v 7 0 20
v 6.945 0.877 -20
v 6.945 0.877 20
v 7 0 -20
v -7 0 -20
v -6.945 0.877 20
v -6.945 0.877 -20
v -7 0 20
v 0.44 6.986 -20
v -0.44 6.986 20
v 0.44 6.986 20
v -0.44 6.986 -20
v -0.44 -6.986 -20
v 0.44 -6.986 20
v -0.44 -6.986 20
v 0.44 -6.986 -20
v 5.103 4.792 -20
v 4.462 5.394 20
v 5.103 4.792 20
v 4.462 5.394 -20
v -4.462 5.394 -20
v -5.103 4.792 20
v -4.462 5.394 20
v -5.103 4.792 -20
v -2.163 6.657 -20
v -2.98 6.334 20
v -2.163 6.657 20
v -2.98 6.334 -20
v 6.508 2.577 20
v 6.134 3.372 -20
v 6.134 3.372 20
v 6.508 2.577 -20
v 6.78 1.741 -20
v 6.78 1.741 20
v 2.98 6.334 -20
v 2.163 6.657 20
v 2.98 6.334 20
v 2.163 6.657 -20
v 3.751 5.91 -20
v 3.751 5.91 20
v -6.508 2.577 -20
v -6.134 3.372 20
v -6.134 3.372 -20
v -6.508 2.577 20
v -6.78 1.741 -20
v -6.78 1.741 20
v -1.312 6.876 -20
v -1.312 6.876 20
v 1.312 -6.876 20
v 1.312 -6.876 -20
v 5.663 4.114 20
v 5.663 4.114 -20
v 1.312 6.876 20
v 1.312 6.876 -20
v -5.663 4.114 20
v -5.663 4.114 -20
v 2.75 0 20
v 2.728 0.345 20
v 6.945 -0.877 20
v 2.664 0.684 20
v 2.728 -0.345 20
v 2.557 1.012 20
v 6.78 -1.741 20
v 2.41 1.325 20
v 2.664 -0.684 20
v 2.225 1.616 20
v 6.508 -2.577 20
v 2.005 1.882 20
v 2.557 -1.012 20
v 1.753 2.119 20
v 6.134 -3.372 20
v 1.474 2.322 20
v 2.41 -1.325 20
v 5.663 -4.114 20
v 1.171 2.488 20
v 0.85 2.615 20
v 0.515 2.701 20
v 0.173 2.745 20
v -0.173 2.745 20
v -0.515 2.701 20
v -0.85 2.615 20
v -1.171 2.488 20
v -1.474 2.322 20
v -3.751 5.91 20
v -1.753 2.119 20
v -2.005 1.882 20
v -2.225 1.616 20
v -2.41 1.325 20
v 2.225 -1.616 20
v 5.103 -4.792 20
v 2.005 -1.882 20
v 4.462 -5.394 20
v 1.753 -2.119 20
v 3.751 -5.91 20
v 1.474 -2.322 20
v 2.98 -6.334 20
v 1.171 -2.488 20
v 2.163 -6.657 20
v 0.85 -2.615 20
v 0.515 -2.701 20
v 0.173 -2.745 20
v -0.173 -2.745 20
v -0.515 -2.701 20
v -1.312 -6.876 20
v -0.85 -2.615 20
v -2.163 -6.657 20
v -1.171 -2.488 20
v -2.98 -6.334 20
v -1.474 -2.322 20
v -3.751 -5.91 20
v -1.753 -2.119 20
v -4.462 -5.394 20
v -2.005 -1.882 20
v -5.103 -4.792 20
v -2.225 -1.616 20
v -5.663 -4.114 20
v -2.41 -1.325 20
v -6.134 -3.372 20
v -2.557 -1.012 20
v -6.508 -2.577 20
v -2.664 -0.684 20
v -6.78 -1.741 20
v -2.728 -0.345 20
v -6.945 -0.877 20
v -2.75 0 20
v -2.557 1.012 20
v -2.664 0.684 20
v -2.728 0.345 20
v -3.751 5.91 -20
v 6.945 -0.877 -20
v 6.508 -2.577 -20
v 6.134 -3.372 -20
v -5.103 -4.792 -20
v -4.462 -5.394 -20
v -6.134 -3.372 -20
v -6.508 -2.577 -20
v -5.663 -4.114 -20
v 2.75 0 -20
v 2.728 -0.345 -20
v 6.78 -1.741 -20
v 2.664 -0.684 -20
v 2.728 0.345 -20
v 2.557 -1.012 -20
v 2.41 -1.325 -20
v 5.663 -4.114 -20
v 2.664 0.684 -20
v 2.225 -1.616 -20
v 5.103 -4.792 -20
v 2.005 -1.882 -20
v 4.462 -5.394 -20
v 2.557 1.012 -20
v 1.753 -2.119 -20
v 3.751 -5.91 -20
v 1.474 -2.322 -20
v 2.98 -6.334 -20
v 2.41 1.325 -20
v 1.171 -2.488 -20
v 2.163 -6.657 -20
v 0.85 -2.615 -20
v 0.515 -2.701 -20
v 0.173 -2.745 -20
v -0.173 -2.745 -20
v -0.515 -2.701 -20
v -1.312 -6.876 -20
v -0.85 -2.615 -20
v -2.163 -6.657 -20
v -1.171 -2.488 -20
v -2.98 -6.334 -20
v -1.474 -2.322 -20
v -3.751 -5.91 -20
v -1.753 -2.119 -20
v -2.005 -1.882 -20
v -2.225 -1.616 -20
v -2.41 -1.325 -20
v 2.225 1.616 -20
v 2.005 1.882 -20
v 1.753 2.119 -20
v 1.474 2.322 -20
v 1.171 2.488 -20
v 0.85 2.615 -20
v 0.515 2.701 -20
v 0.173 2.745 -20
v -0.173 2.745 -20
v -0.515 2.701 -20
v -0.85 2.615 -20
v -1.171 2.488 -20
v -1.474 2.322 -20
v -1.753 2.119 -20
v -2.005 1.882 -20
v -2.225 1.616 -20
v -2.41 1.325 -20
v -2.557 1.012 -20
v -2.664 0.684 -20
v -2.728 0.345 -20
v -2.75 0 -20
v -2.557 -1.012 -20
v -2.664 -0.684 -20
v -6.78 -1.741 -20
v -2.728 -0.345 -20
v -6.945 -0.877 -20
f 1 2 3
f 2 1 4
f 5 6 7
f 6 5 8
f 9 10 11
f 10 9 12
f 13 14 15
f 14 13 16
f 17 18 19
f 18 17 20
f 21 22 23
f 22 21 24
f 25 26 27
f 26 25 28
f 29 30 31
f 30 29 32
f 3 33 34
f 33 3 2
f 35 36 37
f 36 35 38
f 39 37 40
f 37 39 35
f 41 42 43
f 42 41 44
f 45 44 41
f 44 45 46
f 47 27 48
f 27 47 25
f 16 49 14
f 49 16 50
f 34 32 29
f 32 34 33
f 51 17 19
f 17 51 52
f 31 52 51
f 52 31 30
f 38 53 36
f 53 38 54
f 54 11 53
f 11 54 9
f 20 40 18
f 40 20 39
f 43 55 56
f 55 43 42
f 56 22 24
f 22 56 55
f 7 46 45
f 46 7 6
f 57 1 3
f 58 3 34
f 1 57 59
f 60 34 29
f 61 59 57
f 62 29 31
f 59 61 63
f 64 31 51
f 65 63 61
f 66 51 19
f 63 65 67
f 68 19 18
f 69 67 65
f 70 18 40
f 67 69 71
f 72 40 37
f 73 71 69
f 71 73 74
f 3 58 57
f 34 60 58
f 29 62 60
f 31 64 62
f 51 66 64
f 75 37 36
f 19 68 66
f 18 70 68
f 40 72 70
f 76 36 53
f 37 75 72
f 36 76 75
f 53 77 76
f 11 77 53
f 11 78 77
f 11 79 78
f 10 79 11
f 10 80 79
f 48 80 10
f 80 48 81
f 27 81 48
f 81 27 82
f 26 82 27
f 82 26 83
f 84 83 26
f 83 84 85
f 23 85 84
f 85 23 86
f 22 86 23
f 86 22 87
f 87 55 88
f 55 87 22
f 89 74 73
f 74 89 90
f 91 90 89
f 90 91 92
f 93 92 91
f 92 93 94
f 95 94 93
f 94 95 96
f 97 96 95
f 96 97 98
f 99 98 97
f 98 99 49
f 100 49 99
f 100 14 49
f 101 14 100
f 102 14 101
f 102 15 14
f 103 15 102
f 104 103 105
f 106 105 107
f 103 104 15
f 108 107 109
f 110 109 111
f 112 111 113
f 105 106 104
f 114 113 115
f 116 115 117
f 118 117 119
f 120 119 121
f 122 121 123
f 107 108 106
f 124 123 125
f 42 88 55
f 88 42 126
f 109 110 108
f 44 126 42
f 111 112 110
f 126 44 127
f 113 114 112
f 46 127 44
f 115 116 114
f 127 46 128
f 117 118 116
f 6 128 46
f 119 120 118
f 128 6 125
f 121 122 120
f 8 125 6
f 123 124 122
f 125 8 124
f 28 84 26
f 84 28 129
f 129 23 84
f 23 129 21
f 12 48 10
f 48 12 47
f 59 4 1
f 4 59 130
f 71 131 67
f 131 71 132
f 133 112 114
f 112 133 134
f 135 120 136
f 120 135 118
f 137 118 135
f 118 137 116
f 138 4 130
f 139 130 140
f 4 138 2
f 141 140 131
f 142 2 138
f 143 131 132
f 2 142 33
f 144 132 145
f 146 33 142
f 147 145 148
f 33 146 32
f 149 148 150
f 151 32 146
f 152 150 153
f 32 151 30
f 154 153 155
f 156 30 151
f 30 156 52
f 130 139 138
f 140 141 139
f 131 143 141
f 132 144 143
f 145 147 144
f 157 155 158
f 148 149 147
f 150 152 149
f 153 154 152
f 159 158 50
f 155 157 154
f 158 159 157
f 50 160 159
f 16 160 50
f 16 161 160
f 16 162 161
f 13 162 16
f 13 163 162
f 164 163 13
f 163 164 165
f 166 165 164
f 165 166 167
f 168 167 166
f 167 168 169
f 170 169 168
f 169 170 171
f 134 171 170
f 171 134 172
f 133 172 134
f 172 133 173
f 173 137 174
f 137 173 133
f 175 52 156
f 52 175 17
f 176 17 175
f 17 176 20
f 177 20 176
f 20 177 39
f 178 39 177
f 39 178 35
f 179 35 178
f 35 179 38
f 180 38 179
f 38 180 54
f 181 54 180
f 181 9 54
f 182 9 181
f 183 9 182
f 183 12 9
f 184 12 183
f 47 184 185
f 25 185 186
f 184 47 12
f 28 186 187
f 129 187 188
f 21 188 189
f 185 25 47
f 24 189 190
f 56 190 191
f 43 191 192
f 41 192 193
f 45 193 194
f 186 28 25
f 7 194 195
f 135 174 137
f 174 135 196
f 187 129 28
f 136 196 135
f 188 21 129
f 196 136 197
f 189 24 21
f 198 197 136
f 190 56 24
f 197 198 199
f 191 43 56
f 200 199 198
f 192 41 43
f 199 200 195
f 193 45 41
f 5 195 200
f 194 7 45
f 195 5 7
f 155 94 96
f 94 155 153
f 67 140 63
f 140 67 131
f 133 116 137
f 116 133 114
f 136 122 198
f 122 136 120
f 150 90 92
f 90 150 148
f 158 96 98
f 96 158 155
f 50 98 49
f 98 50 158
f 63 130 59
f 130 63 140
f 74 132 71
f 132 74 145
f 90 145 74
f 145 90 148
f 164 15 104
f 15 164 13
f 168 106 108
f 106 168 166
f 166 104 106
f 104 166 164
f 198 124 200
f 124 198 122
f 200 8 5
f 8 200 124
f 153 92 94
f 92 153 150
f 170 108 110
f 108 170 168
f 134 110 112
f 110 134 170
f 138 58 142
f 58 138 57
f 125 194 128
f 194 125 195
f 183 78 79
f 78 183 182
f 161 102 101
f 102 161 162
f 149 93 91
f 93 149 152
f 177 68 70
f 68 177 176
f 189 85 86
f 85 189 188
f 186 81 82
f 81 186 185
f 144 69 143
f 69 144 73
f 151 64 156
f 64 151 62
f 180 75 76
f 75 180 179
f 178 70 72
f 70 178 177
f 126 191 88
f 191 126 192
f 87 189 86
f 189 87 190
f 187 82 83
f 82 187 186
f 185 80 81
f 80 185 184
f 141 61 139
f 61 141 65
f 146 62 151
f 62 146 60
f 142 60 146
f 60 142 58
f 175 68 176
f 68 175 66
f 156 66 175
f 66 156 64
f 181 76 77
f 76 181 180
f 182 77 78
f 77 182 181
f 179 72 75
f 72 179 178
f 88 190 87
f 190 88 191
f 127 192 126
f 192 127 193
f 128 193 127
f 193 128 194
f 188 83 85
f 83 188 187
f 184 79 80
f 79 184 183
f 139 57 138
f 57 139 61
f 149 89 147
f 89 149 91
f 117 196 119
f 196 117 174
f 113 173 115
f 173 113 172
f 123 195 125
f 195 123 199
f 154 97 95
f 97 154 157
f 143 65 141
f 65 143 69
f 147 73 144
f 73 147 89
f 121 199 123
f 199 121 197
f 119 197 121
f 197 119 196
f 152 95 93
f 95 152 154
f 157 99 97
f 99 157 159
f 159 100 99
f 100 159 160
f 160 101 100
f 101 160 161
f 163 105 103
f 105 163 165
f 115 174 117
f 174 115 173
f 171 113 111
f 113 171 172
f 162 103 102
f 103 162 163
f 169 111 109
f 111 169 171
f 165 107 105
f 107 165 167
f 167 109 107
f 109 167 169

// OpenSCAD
$fn = 50;


difference() {
	union() {
		translate(v = [0, 0, -20.0000000000]) {
			cylinder(h = 40, r = 7.0000000000);
		}
	}
	union() {
		translate(v = [0, 0, -100.0000000000]) {
			cylinder(h = 200, r = 2.7500000000);
		}
	}
}
